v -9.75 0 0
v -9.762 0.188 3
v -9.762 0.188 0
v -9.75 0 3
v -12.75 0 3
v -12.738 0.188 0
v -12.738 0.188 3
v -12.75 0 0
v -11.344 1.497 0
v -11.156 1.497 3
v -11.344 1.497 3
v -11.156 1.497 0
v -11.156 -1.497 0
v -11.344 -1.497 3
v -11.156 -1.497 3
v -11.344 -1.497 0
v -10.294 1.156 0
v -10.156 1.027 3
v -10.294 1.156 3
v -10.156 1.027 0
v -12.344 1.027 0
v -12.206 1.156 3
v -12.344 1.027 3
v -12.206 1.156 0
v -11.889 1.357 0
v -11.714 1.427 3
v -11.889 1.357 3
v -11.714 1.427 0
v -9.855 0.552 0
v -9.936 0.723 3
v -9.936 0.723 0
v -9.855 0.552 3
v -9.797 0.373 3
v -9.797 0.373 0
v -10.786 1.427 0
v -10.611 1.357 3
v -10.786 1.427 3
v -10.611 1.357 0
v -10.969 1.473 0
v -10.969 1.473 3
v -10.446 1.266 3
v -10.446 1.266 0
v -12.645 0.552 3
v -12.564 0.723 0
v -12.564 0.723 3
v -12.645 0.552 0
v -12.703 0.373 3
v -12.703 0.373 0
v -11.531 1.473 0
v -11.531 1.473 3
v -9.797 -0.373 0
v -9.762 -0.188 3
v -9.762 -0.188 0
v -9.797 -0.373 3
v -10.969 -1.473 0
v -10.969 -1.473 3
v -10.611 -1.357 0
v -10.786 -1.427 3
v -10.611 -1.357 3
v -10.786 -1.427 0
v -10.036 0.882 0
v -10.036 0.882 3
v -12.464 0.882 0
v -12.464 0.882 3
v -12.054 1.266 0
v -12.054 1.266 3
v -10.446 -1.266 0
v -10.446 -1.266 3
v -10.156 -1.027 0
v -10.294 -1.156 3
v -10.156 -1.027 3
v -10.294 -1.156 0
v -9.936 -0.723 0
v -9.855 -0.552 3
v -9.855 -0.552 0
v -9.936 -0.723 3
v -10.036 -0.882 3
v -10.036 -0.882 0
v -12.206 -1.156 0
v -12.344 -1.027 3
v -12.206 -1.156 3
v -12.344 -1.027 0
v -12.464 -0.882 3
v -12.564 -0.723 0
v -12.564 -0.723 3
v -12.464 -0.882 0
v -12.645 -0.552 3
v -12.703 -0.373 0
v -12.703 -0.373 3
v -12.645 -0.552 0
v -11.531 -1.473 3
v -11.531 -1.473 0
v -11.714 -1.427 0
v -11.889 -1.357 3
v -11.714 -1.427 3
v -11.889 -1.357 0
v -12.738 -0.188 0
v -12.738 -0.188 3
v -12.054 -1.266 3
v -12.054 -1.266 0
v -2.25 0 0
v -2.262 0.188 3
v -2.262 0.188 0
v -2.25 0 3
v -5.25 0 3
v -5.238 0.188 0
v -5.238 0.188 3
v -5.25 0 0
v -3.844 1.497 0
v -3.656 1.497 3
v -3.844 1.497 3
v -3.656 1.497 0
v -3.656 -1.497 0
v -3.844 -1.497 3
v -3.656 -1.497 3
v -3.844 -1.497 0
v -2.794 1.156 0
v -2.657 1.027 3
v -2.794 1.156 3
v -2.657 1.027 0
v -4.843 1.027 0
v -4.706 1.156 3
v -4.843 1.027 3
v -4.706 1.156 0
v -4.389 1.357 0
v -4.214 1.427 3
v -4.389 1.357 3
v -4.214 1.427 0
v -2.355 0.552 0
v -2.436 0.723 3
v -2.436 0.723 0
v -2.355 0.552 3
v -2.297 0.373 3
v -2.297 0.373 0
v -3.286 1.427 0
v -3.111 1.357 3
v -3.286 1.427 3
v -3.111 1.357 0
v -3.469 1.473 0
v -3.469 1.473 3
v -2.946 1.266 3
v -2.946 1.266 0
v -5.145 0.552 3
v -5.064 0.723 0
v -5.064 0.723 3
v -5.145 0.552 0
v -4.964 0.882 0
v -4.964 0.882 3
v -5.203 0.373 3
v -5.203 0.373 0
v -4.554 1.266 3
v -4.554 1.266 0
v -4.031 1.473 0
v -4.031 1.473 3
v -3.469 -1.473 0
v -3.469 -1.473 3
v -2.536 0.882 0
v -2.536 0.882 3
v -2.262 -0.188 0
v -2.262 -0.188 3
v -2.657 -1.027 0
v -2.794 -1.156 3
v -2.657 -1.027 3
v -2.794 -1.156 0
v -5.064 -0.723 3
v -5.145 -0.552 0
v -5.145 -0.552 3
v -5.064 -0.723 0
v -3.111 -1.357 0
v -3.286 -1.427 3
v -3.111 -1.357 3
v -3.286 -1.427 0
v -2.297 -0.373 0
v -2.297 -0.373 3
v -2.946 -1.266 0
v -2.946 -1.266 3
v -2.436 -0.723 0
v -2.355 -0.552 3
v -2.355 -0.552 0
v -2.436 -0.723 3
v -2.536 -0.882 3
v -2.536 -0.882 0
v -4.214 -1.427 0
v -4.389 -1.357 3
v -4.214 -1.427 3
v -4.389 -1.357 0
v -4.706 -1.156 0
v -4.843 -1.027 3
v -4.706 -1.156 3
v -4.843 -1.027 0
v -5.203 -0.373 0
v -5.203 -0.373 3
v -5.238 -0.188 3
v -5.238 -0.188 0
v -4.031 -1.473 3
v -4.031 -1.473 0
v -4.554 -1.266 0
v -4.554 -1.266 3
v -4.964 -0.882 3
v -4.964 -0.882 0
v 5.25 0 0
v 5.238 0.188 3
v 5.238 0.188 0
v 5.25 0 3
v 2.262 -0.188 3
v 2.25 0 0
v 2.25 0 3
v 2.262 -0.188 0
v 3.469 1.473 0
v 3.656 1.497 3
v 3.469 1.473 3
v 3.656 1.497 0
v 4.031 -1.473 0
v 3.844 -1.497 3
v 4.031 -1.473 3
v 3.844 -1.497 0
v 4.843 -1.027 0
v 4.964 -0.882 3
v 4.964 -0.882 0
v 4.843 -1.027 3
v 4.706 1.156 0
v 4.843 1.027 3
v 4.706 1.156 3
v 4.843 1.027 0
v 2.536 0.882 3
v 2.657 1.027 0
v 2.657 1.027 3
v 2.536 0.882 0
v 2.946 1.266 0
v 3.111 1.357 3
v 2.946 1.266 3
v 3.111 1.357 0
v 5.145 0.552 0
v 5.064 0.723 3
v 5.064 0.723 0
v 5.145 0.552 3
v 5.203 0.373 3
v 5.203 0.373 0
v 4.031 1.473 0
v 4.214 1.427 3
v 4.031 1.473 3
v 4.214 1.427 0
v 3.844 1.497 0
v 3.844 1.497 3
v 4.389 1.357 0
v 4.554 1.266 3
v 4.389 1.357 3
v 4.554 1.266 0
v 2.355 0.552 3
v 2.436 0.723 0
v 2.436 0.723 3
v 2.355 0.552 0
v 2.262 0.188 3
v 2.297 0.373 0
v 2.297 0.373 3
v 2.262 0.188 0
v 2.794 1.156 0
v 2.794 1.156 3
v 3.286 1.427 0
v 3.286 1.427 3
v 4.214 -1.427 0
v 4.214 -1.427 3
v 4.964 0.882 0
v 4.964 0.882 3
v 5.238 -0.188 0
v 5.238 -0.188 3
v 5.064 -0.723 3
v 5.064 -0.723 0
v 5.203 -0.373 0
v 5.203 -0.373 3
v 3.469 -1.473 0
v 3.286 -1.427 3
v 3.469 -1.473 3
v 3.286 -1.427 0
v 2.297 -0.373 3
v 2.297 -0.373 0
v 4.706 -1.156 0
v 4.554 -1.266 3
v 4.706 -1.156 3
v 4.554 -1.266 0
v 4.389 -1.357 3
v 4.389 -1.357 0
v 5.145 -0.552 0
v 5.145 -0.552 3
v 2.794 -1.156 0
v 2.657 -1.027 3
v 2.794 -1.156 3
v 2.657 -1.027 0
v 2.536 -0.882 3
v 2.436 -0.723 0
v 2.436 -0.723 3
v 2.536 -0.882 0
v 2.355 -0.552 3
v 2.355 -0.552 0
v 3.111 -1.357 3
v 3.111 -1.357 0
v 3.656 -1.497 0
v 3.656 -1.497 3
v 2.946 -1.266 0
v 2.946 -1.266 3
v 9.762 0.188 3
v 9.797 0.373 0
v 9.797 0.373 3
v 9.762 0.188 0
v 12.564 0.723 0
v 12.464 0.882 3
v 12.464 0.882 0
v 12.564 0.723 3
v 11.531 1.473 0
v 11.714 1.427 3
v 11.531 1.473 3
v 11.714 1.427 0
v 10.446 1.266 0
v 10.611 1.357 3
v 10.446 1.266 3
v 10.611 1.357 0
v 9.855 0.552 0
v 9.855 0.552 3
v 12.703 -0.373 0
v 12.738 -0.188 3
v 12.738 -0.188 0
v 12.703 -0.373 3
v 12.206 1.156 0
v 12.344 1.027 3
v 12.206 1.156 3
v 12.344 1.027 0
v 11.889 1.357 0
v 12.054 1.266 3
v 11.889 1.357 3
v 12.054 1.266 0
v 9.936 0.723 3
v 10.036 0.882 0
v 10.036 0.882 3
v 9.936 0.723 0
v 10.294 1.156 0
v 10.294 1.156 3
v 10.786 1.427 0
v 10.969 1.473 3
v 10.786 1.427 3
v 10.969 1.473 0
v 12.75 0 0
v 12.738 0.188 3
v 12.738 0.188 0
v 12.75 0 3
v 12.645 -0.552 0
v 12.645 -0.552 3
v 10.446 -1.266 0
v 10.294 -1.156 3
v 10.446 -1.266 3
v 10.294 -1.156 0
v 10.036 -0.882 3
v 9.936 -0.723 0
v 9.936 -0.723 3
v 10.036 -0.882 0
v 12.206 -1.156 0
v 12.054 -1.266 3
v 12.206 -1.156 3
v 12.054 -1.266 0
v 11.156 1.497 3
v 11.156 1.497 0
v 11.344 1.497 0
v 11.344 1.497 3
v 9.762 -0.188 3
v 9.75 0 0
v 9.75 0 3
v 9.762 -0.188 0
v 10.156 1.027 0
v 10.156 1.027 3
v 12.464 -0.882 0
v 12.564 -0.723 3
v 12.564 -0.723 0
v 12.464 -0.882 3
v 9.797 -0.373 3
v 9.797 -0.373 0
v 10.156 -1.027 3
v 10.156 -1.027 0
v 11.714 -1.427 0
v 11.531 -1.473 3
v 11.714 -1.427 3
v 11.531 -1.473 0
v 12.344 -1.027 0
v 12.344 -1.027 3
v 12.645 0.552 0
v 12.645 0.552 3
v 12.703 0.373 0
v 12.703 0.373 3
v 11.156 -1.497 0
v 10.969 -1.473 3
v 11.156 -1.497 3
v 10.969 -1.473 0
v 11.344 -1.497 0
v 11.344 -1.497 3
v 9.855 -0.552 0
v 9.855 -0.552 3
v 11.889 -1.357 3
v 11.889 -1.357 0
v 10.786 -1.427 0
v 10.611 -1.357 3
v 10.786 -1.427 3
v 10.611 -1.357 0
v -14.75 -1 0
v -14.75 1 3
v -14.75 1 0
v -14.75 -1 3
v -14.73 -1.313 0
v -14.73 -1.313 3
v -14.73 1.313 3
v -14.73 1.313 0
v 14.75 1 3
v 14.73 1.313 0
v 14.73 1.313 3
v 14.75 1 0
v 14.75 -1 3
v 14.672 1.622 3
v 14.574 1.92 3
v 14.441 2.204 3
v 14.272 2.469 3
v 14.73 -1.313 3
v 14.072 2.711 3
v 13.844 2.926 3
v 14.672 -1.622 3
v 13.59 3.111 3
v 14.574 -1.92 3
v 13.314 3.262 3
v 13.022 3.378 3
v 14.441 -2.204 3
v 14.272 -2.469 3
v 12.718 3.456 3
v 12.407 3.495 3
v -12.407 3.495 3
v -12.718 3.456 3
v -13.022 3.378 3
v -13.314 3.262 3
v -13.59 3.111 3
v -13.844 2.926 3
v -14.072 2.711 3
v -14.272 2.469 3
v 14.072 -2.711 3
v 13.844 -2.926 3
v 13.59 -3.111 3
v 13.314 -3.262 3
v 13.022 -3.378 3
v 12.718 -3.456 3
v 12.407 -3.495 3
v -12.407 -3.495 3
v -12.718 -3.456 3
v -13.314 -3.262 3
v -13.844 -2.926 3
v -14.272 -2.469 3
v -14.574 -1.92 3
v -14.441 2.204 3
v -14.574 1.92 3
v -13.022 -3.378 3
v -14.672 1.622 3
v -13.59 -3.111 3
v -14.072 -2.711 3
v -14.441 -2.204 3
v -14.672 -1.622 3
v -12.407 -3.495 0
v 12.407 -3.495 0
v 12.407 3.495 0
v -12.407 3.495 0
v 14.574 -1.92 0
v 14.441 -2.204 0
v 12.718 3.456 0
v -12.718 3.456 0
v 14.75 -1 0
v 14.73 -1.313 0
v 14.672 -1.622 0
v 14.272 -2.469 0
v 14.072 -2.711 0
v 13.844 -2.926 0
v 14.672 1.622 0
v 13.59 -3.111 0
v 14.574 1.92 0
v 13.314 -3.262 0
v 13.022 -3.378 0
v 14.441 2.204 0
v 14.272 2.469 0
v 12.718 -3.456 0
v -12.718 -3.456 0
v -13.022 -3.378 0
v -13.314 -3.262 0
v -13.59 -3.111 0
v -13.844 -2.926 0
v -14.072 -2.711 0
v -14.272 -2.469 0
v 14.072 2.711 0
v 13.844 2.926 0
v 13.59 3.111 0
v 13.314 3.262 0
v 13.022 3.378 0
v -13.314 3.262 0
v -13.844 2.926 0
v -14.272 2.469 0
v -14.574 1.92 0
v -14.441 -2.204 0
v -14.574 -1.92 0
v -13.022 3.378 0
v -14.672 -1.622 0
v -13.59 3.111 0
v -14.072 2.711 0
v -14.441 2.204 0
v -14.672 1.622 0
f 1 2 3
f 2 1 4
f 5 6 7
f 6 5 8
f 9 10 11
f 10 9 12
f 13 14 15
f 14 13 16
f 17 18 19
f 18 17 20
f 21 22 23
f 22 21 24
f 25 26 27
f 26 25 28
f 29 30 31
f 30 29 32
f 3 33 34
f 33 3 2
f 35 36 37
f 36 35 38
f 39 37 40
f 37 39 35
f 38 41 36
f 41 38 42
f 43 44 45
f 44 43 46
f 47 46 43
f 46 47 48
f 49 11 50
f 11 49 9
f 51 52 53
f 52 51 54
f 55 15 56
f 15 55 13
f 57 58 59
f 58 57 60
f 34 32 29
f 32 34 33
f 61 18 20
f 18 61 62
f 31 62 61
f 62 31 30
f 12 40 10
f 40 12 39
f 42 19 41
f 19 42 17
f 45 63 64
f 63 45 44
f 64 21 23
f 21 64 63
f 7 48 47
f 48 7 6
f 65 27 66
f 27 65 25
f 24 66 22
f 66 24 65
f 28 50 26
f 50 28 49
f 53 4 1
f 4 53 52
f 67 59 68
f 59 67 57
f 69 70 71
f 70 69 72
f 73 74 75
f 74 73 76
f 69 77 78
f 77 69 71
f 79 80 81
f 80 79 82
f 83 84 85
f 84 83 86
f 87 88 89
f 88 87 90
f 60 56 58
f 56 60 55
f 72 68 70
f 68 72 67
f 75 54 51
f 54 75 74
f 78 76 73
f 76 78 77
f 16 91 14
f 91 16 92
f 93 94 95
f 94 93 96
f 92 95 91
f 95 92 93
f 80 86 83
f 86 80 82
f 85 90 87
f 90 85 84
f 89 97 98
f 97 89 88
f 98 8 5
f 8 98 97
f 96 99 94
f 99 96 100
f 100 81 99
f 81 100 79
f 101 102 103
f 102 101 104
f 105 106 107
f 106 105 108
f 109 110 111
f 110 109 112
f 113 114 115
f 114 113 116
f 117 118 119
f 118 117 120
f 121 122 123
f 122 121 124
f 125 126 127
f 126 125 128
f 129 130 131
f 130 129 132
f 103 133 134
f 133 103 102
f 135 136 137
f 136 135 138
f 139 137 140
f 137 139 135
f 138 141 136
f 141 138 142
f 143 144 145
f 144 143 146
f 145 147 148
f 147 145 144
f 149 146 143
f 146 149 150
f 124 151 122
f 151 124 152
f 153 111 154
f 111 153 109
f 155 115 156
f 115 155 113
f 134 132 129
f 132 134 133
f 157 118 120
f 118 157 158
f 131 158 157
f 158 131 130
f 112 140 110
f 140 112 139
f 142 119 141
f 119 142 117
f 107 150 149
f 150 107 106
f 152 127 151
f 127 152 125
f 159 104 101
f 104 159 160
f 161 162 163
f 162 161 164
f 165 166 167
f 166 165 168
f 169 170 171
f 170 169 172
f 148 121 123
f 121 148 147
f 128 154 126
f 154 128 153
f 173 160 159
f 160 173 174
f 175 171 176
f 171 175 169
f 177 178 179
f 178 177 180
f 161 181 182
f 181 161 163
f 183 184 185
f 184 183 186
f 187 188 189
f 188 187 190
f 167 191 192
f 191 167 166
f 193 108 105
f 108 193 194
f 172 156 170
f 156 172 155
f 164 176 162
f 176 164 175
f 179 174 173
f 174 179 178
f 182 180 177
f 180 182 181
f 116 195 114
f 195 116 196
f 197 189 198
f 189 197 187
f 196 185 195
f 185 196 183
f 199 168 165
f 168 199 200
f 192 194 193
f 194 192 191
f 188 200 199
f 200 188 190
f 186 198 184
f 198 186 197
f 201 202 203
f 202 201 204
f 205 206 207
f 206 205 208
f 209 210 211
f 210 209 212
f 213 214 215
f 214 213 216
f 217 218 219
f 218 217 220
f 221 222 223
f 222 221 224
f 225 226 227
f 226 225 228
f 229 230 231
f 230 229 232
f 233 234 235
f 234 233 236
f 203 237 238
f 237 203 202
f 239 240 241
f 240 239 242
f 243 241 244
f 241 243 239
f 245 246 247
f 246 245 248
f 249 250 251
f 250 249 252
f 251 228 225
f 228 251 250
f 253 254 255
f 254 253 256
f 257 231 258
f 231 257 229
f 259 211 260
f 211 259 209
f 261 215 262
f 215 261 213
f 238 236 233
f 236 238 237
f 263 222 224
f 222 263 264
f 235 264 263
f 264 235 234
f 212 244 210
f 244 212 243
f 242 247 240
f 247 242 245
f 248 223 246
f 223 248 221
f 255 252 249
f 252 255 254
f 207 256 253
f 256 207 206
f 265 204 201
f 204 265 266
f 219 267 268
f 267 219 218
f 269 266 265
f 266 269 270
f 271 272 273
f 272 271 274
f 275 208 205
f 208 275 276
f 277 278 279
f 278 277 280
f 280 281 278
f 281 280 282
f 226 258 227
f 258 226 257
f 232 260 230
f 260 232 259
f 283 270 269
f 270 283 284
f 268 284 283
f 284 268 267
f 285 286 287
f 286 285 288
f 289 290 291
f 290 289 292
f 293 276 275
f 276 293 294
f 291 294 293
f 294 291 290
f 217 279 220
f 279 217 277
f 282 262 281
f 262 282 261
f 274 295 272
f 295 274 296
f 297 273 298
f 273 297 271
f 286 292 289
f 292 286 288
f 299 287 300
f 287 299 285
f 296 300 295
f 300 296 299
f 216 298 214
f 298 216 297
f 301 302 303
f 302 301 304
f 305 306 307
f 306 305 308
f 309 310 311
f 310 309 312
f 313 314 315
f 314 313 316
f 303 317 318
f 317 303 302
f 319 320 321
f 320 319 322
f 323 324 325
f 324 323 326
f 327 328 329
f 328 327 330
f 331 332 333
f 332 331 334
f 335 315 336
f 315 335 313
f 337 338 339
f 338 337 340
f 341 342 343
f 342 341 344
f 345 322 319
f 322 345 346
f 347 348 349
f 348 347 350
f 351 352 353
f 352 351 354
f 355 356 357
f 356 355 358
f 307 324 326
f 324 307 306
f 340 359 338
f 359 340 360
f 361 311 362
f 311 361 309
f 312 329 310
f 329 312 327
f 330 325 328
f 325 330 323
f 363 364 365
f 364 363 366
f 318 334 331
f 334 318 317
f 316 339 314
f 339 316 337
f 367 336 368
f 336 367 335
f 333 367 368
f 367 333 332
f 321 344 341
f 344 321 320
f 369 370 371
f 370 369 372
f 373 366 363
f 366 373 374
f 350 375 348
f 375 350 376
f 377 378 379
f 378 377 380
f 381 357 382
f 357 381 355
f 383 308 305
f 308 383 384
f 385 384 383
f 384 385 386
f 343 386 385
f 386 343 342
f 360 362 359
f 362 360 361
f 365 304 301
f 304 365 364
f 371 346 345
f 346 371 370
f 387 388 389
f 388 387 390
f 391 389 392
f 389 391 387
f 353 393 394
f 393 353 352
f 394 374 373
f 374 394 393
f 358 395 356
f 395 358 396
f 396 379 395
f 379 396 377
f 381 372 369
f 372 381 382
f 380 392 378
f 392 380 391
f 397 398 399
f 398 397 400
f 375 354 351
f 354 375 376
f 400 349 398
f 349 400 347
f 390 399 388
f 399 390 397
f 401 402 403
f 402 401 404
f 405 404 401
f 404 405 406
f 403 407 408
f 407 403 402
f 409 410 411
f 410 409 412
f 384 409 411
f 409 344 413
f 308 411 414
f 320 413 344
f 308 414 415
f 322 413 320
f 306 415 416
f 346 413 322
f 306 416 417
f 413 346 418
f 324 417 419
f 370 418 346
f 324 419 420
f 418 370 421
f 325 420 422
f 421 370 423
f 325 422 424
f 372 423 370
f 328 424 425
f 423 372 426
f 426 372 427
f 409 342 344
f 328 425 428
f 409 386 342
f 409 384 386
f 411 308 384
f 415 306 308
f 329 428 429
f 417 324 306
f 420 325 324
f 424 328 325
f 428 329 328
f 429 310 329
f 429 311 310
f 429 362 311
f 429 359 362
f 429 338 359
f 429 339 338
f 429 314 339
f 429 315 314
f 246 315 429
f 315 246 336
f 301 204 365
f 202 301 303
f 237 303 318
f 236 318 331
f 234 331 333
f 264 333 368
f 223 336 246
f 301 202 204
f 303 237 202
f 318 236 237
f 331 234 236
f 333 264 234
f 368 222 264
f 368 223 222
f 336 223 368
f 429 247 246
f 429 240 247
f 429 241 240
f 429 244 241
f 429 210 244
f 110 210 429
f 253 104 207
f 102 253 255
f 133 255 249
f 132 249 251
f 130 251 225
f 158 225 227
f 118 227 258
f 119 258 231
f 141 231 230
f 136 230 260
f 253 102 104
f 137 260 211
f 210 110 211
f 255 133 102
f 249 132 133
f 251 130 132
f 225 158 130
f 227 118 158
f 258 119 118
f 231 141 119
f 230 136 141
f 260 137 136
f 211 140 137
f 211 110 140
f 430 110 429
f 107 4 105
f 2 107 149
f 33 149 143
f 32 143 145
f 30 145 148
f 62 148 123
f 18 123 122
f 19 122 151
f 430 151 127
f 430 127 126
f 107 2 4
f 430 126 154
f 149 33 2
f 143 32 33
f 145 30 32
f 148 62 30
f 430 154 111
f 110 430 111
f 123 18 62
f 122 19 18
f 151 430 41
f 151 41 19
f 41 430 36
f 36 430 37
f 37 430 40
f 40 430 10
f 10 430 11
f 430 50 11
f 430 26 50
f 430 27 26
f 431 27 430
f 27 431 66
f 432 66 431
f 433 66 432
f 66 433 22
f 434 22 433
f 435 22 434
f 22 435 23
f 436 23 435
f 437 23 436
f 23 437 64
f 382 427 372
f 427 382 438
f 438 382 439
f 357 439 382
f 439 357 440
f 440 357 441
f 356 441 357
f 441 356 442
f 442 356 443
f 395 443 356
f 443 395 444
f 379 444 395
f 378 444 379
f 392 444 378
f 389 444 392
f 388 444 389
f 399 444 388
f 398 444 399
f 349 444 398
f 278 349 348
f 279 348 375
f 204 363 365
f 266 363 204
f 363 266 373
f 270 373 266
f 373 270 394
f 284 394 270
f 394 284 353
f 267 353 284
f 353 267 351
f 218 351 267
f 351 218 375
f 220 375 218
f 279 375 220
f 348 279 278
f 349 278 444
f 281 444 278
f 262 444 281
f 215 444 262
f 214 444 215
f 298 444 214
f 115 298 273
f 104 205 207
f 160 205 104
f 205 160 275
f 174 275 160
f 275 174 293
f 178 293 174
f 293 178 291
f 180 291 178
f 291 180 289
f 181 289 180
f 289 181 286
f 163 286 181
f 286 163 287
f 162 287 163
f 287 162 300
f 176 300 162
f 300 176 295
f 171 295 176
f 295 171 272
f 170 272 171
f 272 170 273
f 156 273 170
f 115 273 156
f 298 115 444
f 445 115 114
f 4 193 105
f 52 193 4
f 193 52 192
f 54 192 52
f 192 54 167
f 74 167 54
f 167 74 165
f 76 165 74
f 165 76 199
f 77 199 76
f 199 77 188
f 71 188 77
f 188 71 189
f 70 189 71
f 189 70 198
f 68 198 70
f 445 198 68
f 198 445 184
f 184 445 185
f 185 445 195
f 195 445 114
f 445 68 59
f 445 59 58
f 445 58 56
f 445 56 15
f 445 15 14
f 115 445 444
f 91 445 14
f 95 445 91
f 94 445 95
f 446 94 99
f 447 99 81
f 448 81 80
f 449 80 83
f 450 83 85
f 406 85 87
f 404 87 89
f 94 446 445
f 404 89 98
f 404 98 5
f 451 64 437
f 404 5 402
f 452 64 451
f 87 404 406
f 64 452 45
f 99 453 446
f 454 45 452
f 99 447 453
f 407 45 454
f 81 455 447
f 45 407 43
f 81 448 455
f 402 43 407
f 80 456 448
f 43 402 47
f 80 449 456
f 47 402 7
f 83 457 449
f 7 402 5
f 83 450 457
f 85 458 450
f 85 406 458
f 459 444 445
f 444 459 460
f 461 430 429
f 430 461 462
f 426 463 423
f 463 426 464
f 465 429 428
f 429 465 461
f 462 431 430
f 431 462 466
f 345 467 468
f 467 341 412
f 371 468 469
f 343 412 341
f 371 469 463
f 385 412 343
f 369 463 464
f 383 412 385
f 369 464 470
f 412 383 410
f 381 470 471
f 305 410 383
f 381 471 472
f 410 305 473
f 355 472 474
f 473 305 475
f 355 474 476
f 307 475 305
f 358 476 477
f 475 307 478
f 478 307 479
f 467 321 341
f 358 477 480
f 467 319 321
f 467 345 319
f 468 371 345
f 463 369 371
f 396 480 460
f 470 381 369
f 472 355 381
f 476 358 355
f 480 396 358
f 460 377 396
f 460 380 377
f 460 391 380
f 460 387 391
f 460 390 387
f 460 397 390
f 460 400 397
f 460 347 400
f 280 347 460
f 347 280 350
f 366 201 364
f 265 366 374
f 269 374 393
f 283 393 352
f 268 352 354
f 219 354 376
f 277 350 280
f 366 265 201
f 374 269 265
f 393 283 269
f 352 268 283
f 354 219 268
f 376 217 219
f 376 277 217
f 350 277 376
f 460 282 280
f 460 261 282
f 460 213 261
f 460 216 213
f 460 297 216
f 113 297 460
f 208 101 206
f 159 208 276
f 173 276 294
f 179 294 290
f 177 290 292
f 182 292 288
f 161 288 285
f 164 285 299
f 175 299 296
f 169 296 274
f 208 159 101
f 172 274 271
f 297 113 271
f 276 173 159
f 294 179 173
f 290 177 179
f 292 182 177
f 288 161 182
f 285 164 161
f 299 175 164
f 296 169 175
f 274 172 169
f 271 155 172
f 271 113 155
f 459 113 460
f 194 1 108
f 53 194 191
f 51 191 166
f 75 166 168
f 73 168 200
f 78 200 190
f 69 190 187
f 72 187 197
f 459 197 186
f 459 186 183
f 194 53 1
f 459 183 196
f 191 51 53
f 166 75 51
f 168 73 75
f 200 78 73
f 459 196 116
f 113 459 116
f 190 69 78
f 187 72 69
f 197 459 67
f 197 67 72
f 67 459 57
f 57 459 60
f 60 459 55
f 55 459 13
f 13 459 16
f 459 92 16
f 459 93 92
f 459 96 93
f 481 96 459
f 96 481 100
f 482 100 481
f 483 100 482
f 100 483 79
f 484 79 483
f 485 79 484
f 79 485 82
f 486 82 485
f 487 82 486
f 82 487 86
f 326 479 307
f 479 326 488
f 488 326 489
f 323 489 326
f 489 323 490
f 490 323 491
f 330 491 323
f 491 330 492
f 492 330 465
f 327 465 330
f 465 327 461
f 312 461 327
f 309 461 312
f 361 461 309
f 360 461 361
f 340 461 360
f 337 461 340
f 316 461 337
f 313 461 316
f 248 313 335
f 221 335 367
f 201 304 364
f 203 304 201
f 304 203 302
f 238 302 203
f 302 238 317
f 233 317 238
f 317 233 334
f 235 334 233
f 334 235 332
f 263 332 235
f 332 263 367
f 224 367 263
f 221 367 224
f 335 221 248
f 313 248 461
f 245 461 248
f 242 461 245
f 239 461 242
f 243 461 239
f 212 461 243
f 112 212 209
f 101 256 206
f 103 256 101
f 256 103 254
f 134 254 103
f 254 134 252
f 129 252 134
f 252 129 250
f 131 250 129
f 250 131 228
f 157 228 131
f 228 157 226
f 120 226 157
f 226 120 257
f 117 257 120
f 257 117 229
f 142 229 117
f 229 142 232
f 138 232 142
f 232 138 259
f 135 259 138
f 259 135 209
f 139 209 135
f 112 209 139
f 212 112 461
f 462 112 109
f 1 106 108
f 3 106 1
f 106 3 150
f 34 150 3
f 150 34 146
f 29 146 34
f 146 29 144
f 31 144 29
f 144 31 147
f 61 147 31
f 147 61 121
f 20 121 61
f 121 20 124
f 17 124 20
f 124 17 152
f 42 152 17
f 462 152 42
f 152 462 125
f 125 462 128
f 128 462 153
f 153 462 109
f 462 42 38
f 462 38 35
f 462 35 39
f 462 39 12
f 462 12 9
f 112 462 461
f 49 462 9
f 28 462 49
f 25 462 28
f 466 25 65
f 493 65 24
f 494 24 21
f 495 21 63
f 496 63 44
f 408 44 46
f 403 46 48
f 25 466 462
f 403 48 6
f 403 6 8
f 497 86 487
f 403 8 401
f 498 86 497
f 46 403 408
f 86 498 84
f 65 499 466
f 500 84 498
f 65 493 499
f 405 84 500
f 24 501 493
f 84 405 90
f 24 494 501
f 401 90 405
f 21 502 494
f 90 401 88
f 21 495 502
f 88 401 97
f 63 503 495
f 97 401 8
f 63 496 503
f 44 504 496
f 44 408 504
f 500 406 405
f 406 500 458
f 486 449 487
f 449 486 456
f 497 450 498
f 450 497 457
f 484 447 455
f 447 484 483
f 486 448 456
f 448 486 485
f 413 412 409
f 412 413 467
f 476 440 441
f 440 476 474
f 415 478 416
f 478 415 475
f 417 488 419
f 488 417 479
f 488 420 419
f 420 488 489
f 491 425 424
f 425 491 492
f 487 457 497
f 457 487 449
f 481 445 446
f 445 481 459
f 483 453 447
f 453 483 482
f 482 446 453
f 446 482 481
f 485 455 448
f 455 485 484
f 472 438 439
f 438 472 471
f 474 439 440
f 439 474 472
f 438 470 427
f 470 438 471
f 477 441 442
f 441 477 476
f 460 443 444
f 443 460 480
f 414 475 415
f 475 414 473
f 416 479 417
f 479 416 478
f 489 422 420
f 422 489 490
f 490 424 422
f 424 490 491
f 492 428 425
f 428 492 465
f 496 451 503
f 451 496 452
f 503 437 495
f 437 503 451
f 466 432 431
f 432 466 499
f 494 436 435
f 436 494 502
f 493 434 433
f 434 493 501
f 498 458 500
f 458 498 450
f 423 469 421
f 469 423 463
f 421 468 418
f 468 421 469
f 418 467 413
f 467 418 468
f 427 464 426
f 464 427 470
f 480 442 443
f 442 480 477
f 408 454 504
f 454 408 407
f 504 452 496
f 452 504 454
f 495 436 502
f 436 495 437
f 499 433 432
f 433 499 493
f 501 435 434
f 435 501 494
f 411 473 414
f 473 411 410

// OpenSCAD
$fn = 50;


difference() {
	union() {
		translate(v = [0, 0, 0]) {
			rotate(a = [0, 0, 0]) {
				hull() {
					translate(v = [-12.2500000000, 1.0000000000, 0]) {
						rotate(a = [0, 0, 0]) {
							translate(v = [0, 0, 0]) {
								rotate(a = [0, 0, 0]) {
									cylinder(h = 3, r = 2.5000000000);
								}
							}
						}
					}
					translate(v = [12.2500000000, 1.0000000000, 0]) {
						rotate(a = [0, 0, 0]) {
							translate(v = [0, 0, 0]) {
								rotate(a = [0, 0, 0]) {
									cylinder(h = 3, r = 2.5000000000);
								}
							}
						}
					}
					translate(v = [-12.2500000000, -1.0000000000, 0]) {
						rotate(a = [0, 0, 0]) {
							translate(v = [0, 0, 0]) {
								rotate(a = [0, 0, 0]) {
									cylinder(h = 3, r = 2.5000000000);
								}
							}
						}
					}
					translate(v = [12.2500000000, -1.0000000000, 0]) {
						rotate(a = [0, 0, 0]) {
							translate(v = [0, 0, 0]) {
								rotate(a = [0, 0, 0]) {
									cylinder(h = 3, r = 2.5000000000);
								}
							}
						}
					}
				}
			}
		}
	}
	union() {
		translate(v = [-11.2500000000, 0.0000000000, 0]) {
			rotate(a = [0, 0, 0]) {
				translate(v = [0, 0, -50]) {
					rotate(a = [0, 0, 0]) {
						cylinder(h = 100, r = 1.5000000000);
					}
				}
			}
		}
		translate(v = [-3.7500000000, 0.0000000000, 0]) {
			rotate(a = [0, 0, 0]) {
				translate(v = [0, 0, -50]) {
					rotate(a = [0, 0, 0]) {
						cylinder(h = 100, r = 1.5000000000);
					}
				}
			}
		}
		translate(v = [3.7500000000, 0.0000000000, 0]) {
			rotate(a = [0, 0, 0]) {
				translate(v = [0, 0, -50]) {
					rotate(a = [0, 0, 0]) {
						cylinder(h = 100, r = 1.5000000000);
					}
				}
			}
		}
		translate(v = [11.2500000000, 0.0000000000, 0]) {
			rotate(a = [0, 0, 0]) {
				translate(v = [0, 0, -50]) {
					rotate(a = [0, 0, 0]) {
						cylinder(h = 100, r = 1.5000000000);
					}
				}
			}
		}
	}
}
